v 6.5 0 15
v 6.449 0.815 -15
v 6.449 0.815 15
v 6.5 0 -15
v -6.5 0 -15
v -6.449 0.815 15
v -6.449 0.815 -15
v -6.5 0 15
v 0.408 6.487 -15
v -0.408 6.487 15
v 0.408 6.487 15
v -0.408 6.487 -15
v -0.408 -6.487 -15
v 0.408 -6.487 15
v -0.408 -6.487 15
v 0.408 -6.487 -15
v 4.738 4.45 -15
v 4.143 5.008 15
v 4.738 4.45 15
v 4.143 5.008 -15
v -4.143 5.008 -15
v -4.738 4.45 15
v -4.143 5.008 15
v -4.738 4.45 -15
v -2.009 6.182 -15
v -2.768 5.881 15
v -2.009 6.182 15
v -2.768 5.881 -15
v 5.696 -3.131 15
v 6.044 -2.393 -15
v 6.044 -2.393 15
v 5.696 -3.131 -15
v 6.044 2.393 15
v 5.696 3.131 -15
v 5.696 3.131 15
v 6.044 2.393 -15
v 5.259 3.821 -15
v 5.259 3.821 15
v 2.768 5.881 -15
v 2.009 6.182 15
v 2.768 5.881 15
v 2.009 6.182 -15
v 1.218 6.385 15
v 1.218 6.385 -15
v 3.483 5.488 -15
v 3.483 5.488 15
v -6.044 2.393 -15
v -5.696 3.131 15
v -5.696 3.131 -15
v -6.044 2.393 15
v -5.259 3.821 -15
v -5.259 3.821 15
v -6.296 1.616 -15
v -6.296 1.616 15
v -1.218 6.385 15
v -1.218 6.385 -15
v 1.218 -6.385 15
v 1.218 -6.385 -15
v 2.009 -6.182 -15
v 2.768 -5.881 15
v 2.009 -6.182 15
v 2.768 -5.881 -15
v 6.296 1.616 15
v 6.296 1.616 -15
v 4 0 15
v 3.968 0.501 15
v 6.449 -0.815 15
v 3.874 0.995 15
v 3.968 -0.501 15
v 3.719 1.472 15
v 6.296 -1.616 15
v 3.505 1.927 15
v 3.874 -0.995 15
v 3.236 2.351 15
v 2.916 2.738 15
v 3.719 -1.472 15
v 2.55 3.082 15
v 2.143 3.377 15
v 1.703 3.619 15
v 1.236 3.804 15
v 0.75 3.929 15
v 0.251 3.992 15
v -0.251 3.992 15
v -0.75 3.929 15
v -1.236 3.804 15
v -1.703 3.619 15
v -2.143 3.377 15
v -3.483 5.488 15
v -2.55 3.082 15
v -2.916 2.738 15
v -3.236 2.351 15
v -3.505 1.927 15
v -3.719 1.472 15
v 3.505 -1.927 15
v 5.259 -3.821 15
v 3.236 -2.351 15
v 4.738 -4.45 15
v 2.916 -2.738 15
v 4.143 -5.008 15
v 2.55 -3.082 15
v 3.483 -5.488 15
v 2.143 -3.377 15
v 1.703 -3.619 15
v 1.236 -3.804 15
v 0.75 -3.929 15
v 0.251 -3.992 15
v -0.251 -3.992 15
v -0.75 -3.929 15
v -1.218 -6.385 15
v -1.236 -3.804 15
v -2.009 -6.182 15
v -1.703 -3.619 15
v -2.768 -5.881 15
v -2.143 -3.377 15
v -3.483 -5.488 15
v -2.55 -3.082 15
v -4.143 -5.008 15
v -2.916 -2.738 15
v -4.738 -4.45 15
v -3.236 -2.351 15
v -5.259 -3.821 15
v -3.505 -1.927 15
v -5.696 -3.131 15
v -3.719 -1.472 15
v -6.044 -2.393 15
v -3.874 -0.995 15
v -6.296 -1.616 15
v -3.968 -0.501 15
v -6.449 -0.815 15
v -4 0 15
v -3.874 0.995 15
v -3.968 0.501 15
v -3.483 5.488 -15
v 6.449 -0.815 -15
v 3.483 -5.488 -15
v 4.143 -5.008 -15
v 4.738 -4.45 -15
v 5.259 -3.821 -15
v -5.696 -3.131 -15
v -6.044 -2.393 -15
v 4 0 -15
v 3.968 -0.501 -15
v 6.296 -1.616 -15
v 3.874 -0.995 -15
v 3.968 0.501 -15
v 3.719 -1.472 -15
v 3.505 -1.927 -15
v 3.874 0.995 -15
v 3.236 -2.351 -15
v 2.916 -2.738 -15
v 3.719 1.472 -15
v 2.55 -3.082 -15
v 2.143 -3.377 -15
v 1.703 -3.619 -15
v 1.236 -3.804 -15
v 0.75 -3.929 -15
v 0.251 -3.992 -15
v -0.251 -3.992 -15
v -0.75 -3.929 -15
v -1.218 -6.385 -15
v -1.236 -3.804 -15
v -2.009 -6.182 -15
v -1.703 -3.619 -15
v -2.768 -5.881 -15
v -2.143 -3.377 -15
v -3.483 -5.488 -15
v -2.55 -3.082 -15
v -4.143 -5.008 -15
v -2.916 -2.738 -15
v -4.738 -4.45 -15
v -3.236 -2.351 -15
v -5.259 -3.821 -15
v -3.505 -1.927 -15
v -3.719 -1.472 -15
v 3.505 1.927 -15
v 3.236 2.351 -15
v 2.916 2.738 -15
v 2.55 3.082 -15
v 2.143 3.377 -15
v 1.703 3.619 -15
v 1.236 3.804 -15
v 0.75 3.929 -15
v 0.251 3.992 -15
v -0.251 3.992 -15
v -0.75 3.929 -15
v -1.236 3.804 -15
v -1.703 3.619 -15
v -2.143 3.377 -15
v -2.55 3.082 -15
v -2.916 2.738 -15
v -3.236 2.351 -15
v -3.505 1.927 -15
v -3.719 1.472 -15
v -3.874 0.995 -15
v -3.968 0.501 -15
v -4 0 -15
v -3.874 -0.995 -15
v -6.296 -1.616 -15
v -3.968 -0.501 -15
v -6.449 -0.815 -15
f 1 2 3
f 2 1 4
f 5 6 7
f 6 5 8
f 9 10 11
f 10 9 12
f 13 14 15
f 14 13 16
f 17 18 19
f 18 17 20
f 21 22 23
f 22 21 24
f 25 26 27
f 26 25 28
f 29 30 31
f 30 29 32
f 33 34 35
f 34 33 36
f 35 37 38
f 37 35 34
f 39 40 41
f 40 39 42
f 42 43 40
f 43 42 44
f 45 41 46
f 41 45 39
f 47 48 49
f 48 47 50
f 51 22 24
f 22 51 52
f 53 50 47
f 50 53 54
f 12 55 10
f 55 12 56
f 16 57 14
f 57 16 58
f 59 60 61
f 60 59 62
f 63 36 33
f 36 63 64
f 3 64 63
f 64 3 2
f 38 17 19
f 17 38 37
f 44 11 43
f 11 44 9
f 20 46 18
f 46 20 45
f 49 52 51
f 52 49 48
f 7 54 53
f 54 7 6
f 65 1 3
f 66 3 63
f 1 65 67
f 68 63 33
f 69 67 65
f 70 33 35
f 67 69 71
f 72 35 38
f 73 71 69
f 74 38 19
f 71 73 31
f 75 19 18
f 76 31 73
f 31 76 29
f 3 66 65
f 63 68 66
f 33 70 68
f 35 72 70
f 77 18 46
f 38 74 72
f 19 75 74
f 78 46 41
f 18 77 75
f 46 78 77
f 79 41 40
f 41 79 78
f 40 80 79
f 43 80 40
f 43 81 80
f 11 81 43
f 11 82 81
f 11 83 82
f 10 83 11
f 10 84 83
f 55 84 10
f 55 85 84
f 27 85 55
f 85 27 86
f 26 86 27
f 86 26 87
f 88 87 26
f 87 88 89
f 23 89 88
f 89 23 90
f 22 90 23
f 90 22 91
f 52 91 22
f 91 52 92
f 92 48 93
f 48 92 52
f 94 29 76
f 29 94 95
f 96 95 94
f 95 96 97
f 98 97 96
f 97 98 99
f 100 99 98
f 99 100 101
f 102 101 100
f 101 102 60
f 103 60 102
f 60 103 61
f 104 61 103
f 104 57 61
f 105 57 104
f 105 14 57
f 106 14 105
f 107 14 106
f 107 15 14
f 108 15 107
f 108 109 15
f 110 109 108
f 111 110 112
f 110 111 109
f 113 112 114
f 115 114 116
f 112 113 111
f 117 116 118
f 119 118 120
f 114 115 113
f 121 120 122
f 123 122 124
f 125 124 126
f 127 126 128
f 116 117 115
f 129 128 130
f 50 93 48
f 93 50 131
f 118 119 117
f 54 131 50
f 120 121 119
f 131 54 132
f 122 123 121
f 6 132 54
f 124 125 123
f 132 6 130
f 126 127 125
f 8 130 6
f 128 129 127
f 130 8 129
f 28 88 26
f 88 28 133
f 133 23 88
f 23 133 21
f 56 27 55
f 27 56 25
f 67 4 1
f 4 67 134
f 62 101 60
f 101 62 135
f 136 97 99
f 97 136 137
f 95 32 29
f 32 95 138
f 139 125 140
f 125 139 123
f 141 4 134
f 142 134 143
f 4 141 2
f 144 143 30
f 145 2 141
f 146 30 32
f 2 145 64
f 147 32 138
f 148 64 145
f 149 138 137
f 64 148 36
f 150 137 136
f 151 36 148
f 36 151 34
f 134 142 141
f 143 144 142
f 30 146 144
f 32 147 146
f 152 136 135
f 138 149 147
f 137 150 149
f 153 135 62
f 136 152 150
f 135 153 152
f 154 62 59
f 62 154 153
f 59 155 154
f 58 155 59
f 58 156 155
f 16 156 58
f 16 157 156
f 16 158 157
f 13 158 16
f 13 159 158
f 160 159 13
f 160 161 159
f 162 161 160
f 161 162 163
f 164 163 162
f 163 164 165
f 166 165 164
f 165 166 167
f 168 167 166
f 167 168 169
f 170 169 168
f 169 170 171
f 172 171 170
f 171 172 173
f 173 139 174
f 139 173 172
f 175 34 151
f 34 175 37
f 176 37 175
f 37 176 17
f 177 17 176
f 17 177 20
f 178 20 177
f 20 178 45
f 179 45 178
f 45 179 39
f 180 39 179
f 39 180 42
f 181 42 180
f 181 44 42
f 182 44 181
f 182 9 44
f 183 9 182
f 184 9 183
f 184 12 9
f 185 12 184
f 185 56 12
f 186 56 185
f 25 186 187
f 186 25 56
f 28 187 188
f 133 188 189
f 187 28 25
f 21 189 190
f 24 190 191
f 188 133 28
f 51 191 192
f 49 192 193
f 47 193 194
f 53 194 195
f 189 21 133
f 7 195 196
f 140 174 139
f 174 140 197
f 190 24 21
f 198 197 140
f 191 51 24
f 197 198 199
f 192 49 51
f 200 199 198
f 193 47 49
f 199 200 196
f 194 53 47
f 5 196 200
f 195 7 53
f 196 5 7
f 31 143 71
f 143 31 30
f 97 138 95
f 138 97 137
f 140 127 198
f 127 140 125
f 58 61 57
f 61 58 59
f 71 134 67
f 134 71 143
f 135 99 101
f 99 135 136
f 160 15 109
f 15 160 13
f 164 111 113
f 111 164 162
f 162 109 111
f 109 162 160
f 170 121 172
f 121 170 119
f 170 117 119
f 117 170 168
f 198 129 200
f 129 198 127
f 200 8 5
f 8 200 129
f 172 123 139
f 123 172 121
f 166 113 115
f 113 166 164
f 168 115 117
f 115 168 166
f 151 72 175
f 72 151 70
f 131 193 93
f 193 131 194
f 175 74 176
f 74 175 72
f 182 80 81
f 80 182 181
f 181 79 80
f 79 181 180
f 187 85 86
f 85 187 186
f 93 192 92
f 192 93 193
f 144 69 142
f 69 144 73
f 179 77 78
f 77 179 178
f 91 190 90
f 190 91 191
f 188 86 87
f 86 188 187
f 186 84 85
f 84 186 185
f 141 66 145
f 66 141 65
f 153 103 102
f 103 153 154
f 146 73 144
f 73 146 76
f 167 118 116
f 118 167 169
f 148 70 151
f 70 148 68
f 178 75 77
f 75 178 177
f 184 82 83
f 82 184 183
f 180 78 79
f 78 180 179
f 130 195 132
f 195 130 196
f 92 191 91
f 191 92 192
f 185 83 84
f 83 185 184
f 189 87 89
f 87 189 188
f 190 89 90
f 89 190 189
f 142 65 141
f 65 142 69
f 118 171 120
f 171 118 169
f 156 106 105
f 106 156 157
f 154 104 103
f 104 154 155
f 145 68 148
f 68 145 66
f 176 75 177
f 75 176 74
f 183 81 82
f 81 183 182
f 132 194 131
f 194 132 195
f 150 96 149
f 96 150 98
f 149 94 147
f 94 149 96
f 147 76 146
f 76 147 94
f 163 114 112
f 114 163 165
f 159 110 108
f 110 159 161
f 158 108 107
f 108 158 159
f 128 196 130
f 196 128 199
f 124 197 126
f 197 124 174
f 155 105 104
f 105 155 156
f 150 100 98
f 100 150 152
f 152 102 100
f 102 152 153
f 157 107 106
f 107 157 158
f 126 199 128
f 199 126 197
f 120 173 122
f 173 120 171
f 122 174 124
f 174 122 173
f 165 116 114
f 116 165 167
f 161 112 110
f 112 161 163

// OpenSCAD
$fn = 50;


difference() {
	union() {
		translate(v = [0, 0, -15.0000000000]) {
			cylinder(h = 30, r = 6.5000000000);
		}
	}
	union() {
		translate(v = [0, 0, -100.0000000000]) {
			cylinder(h = 200, r = 4.0000000000);
		}
	}
}
